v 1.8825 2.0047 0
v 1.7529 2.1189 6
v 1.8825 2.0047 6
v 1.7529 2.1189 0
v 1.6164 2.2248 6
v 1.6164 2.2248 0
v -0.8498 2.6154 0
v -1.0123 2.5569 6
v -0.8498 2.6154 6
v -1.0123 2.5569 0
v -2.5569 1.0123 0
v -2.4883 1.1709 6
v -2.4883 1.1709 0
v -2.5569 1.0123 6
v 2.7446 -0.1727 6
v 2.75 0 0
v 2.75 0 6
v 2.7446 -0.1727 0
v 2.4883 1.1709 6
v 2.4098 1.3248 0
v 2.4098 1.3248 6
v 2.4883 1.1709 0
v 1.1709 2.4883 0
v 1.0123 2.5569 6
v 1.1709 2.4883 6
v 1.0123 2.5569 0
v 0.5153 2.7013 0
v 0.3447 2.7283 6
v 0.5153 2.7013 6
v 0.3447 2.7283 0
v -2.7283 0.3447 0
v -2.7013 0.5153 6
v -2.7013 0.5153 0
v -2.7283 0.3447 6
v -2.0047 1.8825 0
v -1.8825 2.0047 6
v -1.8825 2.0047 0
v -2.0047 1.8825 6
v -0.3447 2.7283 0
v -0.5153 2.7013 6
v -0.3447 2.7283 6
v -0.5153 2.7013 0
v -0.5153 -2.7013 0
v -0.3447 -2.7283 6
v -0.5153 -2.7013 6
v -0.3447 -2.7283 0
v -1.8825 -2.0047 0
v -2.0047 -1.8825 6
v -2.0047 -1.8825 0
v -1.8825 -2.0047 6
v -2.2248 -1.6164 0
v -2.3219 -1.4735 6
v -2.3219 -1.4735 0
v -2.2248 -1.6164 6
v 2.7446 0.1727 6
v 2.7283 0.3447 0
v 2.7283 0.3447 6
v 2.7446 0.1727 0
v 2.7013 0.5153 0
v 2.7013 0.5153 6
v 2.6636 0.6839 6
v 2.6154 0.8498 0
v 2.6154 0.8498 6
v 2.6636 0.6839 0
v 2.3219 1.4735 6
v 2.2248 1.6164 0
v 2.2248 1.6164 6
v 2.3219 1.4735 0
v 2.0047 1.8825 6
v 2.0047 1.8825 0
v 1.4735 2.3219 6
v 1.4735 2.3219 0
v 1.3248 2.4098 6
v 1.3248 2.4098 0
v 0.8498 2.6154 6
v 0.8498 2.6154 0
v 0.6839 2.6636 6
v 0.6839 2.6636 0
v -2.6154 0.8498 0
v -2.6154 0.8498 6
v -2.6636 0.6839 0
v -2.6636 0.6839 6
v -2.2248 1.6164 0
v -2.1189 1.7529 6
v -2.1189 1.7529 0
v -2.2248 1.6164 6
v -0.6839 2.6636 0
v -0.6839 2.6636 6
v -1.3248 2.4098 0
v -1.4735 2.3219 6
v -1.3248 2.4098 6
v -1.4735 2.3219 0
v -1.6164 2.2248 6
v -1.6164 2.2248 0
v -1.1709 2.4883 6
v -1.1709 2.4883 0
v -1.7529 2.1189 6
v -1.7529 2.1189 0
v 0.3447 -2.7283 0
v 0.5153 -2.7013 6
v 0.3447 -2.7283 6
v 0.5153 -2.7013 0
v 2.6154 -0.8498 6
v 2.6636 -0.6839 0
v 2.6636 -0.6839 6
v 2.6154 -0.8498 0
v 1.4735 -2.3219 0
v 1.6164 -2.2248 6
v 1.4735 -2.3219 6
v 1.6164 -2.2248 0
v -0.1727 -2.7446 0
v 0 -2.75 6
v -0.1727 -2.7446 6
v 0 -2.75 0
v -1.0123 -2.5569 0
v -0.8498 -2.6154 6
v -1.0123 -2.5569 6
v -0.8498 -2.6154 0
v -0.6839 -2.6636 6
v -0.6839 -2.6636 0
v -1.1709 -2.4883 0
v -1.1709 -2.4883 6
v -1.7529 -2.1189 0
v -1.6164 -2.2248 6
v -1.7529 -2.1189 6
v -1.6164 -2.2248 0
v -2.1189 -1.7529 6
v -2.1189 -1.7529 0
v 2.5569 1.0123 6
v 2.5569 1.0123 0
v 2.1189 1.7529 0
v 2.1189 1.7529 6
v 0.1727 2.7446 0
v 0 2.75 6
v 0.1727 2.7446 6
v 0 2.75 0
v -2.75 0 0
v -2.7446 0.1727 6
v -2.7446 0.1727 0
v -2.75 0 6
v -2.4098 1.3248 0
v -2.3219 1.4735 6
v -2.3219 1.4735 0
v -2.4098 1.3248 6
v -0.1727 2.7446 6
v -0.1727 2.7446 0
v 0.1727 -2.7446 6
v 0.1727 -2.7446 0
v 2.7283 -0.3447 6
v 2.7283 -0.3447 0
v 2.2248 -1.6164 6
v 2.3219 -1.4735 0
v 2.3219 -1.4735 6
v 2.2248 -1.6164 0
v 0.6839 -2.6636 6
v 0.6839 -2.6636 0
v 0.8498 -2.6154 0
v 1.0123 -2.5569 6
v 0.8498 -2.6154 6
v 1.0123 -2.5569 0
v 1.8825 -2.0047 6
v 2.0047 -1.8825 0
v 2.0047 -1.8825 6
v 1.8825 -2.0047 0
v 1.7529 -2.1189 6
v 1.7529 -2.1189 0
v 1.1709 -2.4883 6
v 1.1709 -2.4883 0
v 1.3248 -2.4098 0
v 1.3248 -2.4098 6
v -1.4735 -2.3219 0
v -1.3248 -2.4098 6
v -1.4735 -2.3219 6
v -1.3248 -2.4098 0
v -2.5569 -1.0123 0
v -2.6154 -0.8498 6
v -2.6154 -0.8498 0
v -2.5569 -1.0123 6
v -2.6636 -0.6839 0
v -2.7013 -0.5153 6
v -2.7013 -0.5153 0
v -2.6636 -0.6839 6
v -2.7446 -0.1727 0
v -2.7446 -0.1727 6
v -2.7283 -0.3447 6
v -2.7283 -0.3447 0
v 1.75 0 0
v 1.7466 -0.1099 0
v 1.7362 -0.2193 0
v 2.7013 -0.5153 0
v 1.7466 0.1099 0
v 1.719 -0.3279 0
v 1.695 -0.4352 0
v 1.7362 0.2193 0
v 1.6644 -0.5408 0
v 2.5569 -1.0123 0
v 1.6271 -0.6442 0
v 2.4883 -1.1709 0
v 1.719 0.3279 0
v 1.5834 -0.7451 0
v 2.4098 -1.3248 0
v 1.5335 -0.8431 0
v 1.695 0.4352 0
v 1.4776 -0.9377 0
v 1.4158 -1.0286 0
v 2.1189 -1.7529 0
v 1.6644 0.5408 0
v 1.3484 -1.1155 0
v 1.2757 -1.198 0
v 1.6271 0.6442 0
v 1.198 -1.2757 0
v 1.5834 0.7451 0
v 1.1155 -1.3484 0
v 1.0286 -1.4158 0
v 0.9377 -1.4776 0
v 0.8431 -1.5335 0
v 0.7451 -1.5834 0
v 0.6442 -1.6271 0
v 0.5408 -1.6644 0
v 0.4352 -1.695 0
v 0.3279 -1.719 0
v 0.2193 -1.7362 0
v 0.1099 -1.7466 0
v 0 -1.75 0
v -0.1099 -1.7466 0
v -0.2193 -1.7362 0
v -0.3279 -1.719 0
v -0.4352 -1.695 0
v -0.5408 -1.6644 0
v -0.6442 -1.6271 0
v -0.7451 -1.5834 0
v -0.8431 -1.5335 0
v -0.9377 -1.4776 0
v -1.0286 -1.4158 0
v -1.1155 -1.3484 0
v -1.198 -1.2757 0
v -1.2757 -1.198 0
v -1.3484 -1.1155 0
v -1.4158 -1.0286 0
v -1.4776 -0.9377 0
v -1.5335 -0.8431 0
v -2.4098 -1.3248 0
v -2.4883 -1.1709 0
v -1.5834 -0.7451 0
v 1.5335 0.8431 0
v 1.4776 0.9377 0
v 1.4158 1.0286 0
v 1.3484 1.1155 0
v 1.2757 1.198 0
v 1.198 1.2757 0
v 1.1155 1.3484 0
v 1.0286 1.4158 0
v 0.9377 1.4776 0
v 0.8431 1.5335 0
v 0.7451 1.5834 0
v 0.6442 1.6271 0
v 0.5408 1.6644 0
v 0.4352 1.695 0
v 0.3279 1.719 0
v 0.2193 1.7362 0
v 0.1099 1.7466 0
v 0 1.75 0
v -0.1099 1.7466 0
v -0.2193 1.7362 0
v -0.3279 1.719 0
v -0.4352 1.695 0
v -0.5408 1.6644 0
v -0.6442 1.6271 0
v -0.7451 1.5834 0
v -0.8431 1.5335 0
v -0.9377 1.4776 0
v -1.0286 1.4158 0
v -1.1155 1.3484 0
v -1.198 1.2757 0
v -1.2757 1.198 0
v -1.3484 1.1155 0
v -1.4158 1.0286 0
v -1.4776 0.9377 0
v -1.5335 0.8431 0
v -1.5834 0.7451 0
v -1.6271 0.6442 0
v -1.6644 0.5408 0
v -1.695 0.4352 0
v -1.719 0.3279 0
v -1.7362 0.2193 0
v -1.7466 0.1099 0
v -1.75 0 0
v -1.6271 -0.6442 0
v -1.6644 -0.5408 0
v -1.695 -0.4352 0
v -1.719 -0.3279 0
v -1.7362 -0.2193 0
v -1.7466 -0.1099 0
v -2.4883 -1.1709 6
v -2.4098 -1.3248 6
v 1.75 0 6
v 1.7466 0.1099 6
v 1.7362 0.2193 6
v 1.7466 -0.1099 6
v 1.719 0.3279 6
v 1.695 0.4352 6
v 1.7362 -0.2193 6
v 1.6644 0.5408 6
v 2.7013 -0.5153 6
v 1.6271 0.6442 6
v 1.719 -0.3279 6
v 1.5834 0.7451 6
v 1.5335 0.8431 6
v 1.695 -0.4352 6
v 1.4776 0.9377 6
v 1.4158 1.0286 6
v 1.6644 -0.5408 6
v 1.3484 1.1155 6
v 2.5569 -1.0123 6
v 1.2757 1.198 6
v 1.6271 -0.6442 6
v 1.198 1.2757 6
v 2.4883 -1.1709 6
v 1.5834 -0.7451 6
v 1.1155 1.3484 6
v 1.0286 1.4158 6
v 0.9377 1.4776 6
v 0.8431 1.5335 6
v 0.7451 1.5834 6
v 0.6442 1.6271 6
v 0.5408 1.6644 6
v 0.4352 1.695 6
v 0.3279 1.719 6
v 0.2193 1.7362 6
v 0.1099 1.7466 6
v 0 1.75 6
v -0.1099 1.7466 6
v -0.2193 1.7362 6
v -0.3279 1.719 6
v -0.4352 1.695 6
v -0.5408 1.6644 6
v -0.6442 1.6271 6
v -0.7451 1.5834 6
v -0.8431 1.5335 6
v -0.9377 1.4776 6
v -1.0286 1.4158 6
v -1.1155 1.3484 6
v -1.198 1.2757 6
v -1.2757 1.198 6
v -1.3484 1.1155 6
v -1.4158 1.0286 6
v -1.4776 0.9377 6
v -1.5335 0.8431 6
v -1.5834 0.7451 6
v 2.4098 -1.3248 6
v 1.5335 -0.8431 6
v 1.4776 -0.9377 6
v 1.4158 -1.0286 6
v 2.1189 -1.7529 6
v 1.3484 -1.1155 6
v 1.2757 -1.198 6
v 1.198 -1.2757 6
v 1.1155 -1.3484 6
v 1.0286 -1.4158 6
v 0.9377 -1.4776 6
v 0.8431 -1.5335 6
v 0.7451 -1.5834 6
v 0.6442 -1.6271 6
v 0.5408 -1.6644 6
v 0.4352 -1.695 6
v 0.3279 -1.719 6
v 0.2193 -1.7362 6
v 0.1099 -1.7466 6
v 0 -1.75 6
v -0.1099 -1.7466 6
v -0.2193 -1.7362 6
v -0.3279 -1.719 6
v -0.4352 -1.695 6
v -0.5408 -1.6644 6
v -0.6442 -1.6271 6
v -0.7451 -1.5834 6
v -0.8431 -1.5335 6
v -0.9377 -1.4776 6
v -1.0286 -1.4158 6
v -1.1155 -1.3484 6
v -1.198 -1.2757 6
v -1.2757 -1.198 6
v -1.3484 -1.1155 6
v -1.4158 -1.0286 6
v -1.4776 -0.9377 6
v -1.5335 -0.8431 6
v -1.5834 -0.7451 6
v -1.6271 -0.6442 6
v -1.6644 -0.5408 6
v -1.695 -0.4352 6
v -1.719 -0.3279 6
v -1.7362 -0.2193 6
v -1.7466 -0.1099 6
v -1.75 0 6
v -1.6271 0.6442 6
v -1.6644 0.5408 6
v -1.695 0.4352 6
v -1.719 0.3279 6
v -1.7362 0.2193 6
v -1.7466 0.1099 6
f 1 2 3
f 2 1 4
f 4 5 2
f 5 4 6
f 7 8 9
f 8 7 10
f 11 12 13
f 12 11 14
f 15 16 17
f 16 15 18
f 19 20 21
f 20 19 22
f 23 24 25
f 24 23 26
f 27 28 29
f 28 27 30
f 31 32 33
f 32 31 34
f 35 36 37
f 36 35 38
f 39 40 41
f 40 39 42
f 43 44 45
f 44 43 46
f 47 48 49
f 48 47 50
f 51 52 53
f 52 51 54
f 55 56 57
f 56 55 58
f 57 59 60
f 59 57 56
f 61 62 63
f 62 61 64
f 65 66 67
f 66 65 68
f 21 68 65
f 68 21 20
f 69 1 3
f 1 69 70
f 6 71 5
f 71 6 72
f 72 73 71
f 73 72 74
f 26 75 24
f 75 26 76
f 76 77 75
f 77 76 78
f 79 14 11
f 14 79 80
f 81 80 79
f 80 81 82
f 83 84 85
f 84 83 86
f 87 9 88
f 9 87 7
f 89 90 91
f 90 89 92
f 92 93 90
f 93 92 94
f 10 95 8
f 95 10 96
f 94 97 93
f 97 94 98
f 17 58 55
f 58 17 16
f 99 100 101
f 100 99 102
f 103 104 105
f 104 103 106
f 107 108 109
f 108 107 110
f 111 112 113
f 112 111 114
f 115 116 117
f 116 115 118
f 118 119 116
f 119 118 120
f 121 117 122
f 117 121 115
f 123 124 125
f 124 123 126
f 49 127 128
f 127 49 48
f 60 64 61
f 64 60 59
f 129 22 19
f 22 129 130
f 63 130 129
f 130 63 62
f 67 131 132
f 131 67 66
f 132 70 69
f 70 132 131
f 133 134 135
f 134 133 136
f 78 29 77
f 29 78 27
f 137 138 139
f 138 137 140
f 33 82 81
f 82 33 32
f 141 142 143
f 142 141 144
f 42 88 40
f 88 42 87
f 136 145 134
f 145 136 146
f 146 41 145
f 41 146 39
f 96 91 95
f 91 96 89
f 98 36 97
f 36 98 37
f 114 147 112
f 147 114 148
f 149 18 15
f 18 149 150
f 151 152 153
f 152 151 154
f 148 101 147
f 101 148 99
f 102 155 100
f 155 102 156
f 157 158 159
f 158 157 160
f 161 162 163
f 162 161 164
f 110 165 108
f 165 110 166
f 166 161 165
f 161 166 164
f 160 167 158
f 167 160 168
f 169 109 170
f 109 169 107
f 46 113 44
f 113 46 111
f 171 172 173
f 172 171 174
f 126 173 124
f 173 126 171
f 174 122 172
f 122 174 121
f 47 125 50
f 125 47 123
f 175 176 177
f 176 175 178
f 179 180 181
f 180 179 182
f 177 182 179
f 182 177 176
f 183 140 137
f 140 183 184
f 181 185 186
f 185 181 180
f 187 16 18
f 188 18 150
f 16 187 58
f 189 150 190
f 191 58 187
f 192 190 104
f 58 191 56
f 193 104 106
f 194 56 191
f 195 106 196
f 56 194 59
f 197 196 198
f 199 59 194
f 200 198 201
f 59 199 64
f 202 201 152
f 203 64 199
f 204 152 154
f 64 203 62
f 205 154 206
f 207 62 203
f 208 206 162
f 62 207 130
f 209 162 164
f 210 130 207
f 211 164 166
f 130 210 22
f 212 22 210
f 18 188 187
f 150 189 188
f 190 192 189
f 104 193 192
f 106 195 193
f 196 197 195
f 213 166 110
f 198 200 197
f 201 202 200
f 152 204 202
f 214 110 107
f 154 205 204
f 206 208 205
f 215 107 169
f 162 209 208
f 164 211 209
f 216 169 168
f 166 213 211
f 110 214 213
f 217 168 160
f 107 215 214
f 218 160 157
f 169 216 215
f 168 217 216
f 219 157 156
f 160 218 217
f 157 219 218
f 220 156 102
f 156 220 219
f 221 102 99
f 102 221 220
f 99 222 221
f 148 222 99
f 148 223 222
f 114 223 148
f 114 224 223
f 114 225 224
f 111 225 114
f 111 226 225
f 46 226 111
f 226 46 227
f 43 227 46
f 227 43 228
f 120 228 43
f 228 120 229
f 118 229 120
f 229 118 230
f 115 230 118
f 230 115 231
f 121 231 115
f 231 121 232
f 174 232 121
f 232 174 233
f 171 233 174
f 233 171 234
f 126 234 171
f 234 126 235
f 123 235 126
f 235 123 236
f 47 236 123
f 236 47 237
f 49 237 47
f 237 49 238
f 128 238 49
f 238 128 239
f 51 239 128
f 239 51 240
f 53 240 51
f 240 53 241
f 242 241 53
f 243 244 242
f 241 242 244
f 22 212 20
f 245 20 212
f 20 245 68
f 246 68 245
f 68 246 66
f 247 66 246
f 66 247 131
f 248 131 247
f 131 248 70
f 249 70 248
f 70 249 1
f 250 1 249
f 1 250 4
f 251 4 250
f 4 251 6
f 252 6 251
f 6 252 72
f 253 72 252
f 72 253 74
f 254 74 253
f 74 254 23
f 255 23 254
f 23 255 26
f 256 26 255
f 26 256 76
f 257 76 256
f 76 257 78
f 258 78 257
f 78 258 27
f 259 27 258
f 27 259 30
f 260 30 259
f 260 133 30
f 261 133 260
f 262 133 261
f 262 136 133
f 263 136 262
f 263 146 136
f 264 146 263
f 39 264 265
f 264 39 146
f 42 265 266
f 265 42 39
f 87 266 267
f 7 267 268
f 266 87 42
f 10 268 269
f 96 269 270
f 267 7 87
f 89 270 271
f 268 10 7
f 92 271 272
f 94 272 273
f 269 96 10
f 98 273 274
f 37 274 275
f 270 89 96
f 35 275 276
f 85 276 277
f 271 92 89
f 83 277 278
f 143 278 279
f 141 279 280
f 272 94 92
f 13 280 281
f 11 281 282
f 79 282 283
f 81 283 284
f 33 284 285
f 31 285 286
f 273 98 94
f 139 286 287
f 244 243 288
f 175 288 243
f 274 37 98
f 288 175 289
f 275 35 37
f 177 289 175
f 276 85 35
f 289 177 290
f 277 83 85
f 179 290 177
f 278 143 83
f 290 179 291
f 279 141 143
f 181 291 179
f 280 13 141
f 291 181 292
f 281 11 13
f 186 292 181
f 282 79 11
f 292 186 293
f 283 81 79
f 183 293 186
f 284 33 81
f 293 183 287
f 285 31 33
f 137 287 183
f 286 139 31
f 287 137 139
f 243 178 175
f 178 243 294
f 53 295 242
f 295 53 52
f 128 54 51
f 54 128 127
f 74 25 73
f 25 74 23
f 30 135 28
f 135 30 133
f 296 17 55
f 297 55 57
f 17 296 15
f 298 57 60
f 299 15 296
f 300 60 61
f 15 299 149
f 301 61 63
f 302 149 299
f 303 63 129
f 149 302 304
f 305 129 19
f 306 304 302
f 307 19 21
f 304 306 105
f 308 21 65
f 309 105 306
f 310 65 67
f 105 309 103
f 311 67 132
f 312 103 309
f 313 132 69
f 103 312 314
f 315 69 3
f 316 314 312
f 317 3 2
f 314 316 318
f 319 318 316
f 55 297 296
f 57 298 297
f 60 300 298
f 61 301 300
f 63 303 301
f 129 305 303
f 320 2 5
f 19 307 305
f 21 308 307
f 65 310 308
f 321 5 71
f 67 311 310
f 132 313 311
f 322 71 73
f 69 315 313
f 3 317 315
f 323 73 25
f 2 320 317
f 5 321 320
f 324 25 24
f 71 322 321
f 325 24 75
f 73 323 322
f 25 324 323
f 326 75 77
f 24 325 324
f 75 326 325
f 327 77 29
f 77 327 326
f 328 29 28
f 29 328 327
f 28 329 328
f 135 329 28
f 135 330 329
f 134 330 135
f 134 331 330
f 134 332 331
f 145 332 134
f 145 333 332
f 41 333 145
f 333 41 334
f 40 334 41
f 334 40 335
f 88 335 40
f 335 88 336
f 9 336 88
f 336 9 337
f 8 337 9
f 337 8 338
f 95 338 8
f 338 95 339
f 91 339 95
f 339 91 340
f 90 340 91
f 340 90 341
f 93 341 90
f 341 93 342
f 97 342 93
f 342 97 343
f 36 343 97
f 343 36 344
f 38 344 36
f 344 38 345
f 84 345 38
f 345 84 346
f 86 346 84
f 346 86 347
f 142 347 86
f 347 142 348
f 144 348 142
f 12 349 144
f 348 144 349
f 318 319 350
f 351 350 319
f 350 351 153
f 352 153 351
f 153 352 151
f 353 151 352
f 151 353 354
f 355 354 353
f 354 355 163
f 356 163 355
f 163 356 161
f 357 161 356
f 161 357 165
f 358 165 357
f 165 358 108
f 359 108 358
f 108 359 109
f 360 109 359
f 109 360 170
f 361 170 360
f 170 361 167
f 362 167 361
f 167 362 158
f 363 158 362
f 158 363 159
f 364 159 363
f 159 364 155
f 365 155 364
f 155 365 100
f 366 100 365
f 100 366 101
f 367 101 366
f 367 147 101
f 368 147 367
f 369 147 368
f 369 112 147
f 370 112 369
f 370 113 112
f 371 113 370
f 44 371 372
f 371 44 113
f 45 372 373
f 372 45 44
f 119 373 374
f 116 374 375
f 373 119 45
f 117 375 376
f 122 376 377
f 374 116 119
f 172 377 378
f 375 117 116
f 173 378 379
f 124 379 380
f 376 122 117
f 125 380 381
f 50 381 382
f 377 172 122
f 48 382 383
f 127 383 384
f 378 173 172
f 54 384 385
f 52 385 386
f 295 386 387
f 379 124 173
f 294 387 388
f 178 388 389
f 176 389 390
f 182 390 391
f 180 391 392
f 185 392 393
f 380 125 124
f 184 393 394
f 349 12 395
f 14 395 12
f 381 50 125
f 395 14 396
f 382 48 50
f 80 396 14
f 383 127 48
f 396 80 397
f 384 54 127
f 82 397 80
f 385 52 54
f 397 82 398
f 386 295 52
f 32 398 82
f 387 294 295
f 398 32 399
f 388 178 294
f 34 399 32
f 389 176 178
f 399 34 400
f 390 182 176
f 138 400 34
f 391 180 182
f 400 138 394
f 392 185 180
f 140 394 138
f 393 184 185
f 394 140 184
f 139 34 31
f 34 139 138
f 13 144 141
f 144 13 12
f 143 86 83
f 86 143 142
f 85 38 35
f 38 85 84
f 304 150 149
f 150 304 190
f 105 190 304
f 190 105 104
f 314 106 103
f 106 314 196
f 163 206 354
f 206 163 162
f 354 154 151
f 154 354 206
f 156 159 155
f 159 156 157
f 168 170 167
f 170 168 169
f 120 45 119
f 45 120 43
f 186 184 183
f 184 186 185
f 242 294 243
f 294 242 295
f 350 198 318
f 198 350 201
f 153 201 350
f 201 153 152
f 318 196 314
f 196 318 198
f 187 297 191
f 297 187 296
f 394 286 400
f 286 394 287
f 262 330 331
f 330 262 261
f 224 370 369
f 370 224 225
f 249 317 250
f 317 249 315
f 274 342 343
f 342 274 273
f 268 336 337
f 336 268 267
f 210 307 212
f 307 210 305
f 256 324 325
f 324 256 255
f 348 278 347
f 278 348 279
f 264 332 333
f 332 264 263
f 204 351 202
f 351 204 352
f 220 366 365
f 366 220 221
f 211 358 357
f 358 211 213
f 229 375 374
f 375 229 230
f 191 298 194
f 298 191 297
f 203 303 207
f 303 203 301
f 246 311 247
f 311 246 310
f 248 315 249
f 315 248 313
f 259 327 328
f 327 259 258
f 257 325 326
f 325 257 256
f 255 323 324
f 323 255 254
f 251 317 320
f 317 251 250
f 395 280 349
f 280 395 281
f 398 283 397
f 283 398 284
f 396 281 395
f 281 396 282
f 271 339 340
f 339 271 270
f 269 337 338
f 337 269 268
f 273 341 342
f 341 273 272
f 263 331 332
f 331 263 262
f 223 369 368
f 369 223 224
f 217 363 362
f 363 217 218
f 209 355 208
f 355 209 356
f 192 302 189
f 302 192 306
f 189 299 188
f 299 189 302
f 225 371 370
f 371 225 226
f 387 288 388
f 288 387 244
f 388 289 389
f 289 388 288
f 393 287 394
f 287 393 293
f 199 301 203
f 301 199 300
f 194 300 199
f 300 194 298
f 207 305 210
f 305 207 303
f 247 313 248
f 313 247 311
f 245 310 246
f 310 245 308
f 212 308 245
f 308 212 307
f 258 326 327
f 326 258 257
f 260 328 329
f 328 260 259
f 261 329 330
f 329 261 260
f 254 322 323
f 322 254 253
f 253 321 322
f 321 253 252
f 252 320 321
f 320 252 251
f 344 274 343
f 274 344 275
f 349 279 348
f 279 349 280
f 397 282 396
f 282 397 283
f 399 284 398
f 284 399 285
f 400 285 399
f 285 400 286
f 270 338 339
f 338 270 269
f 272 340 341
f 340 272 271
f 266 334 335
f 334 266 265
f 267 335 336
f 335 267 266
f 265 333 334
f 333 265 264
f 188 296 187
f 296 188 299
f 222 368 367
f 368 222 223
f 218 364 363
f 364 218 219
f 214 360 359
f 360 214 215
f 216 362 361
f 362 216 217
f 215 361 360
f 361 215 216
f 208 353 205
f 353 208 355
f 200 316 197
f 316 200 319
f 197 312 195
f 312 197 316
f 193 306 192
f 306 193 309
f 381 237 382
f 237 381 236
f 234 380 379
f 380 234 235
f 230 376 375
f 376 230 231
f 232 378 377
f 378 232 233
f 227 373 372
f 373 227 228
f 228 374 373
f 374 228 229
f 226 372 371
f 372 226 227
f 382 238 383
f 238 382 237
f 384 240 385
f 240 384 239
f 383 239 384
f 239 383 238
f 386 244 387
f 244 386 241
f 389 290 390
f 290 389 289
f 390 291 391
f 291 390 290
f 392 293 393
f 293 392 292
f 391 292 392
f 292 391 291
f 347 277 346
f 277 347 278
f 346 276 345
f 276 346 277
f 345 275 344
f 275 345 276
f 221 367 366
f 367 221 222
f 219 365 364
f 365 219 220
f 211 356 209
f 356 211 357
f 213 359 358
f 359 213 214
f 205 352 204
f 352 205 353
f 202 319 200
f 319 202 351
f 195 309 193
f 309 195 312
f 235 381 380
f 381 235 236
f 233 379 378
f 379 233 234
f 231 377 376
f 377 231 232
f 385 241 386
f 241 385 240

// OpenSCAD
$fn=100;
H=6;
D=3.5;
e=1;

difference()
{
    cylinder(h=H,d=D+2*e);
    cylinder(h=H+2,d=D);
}
